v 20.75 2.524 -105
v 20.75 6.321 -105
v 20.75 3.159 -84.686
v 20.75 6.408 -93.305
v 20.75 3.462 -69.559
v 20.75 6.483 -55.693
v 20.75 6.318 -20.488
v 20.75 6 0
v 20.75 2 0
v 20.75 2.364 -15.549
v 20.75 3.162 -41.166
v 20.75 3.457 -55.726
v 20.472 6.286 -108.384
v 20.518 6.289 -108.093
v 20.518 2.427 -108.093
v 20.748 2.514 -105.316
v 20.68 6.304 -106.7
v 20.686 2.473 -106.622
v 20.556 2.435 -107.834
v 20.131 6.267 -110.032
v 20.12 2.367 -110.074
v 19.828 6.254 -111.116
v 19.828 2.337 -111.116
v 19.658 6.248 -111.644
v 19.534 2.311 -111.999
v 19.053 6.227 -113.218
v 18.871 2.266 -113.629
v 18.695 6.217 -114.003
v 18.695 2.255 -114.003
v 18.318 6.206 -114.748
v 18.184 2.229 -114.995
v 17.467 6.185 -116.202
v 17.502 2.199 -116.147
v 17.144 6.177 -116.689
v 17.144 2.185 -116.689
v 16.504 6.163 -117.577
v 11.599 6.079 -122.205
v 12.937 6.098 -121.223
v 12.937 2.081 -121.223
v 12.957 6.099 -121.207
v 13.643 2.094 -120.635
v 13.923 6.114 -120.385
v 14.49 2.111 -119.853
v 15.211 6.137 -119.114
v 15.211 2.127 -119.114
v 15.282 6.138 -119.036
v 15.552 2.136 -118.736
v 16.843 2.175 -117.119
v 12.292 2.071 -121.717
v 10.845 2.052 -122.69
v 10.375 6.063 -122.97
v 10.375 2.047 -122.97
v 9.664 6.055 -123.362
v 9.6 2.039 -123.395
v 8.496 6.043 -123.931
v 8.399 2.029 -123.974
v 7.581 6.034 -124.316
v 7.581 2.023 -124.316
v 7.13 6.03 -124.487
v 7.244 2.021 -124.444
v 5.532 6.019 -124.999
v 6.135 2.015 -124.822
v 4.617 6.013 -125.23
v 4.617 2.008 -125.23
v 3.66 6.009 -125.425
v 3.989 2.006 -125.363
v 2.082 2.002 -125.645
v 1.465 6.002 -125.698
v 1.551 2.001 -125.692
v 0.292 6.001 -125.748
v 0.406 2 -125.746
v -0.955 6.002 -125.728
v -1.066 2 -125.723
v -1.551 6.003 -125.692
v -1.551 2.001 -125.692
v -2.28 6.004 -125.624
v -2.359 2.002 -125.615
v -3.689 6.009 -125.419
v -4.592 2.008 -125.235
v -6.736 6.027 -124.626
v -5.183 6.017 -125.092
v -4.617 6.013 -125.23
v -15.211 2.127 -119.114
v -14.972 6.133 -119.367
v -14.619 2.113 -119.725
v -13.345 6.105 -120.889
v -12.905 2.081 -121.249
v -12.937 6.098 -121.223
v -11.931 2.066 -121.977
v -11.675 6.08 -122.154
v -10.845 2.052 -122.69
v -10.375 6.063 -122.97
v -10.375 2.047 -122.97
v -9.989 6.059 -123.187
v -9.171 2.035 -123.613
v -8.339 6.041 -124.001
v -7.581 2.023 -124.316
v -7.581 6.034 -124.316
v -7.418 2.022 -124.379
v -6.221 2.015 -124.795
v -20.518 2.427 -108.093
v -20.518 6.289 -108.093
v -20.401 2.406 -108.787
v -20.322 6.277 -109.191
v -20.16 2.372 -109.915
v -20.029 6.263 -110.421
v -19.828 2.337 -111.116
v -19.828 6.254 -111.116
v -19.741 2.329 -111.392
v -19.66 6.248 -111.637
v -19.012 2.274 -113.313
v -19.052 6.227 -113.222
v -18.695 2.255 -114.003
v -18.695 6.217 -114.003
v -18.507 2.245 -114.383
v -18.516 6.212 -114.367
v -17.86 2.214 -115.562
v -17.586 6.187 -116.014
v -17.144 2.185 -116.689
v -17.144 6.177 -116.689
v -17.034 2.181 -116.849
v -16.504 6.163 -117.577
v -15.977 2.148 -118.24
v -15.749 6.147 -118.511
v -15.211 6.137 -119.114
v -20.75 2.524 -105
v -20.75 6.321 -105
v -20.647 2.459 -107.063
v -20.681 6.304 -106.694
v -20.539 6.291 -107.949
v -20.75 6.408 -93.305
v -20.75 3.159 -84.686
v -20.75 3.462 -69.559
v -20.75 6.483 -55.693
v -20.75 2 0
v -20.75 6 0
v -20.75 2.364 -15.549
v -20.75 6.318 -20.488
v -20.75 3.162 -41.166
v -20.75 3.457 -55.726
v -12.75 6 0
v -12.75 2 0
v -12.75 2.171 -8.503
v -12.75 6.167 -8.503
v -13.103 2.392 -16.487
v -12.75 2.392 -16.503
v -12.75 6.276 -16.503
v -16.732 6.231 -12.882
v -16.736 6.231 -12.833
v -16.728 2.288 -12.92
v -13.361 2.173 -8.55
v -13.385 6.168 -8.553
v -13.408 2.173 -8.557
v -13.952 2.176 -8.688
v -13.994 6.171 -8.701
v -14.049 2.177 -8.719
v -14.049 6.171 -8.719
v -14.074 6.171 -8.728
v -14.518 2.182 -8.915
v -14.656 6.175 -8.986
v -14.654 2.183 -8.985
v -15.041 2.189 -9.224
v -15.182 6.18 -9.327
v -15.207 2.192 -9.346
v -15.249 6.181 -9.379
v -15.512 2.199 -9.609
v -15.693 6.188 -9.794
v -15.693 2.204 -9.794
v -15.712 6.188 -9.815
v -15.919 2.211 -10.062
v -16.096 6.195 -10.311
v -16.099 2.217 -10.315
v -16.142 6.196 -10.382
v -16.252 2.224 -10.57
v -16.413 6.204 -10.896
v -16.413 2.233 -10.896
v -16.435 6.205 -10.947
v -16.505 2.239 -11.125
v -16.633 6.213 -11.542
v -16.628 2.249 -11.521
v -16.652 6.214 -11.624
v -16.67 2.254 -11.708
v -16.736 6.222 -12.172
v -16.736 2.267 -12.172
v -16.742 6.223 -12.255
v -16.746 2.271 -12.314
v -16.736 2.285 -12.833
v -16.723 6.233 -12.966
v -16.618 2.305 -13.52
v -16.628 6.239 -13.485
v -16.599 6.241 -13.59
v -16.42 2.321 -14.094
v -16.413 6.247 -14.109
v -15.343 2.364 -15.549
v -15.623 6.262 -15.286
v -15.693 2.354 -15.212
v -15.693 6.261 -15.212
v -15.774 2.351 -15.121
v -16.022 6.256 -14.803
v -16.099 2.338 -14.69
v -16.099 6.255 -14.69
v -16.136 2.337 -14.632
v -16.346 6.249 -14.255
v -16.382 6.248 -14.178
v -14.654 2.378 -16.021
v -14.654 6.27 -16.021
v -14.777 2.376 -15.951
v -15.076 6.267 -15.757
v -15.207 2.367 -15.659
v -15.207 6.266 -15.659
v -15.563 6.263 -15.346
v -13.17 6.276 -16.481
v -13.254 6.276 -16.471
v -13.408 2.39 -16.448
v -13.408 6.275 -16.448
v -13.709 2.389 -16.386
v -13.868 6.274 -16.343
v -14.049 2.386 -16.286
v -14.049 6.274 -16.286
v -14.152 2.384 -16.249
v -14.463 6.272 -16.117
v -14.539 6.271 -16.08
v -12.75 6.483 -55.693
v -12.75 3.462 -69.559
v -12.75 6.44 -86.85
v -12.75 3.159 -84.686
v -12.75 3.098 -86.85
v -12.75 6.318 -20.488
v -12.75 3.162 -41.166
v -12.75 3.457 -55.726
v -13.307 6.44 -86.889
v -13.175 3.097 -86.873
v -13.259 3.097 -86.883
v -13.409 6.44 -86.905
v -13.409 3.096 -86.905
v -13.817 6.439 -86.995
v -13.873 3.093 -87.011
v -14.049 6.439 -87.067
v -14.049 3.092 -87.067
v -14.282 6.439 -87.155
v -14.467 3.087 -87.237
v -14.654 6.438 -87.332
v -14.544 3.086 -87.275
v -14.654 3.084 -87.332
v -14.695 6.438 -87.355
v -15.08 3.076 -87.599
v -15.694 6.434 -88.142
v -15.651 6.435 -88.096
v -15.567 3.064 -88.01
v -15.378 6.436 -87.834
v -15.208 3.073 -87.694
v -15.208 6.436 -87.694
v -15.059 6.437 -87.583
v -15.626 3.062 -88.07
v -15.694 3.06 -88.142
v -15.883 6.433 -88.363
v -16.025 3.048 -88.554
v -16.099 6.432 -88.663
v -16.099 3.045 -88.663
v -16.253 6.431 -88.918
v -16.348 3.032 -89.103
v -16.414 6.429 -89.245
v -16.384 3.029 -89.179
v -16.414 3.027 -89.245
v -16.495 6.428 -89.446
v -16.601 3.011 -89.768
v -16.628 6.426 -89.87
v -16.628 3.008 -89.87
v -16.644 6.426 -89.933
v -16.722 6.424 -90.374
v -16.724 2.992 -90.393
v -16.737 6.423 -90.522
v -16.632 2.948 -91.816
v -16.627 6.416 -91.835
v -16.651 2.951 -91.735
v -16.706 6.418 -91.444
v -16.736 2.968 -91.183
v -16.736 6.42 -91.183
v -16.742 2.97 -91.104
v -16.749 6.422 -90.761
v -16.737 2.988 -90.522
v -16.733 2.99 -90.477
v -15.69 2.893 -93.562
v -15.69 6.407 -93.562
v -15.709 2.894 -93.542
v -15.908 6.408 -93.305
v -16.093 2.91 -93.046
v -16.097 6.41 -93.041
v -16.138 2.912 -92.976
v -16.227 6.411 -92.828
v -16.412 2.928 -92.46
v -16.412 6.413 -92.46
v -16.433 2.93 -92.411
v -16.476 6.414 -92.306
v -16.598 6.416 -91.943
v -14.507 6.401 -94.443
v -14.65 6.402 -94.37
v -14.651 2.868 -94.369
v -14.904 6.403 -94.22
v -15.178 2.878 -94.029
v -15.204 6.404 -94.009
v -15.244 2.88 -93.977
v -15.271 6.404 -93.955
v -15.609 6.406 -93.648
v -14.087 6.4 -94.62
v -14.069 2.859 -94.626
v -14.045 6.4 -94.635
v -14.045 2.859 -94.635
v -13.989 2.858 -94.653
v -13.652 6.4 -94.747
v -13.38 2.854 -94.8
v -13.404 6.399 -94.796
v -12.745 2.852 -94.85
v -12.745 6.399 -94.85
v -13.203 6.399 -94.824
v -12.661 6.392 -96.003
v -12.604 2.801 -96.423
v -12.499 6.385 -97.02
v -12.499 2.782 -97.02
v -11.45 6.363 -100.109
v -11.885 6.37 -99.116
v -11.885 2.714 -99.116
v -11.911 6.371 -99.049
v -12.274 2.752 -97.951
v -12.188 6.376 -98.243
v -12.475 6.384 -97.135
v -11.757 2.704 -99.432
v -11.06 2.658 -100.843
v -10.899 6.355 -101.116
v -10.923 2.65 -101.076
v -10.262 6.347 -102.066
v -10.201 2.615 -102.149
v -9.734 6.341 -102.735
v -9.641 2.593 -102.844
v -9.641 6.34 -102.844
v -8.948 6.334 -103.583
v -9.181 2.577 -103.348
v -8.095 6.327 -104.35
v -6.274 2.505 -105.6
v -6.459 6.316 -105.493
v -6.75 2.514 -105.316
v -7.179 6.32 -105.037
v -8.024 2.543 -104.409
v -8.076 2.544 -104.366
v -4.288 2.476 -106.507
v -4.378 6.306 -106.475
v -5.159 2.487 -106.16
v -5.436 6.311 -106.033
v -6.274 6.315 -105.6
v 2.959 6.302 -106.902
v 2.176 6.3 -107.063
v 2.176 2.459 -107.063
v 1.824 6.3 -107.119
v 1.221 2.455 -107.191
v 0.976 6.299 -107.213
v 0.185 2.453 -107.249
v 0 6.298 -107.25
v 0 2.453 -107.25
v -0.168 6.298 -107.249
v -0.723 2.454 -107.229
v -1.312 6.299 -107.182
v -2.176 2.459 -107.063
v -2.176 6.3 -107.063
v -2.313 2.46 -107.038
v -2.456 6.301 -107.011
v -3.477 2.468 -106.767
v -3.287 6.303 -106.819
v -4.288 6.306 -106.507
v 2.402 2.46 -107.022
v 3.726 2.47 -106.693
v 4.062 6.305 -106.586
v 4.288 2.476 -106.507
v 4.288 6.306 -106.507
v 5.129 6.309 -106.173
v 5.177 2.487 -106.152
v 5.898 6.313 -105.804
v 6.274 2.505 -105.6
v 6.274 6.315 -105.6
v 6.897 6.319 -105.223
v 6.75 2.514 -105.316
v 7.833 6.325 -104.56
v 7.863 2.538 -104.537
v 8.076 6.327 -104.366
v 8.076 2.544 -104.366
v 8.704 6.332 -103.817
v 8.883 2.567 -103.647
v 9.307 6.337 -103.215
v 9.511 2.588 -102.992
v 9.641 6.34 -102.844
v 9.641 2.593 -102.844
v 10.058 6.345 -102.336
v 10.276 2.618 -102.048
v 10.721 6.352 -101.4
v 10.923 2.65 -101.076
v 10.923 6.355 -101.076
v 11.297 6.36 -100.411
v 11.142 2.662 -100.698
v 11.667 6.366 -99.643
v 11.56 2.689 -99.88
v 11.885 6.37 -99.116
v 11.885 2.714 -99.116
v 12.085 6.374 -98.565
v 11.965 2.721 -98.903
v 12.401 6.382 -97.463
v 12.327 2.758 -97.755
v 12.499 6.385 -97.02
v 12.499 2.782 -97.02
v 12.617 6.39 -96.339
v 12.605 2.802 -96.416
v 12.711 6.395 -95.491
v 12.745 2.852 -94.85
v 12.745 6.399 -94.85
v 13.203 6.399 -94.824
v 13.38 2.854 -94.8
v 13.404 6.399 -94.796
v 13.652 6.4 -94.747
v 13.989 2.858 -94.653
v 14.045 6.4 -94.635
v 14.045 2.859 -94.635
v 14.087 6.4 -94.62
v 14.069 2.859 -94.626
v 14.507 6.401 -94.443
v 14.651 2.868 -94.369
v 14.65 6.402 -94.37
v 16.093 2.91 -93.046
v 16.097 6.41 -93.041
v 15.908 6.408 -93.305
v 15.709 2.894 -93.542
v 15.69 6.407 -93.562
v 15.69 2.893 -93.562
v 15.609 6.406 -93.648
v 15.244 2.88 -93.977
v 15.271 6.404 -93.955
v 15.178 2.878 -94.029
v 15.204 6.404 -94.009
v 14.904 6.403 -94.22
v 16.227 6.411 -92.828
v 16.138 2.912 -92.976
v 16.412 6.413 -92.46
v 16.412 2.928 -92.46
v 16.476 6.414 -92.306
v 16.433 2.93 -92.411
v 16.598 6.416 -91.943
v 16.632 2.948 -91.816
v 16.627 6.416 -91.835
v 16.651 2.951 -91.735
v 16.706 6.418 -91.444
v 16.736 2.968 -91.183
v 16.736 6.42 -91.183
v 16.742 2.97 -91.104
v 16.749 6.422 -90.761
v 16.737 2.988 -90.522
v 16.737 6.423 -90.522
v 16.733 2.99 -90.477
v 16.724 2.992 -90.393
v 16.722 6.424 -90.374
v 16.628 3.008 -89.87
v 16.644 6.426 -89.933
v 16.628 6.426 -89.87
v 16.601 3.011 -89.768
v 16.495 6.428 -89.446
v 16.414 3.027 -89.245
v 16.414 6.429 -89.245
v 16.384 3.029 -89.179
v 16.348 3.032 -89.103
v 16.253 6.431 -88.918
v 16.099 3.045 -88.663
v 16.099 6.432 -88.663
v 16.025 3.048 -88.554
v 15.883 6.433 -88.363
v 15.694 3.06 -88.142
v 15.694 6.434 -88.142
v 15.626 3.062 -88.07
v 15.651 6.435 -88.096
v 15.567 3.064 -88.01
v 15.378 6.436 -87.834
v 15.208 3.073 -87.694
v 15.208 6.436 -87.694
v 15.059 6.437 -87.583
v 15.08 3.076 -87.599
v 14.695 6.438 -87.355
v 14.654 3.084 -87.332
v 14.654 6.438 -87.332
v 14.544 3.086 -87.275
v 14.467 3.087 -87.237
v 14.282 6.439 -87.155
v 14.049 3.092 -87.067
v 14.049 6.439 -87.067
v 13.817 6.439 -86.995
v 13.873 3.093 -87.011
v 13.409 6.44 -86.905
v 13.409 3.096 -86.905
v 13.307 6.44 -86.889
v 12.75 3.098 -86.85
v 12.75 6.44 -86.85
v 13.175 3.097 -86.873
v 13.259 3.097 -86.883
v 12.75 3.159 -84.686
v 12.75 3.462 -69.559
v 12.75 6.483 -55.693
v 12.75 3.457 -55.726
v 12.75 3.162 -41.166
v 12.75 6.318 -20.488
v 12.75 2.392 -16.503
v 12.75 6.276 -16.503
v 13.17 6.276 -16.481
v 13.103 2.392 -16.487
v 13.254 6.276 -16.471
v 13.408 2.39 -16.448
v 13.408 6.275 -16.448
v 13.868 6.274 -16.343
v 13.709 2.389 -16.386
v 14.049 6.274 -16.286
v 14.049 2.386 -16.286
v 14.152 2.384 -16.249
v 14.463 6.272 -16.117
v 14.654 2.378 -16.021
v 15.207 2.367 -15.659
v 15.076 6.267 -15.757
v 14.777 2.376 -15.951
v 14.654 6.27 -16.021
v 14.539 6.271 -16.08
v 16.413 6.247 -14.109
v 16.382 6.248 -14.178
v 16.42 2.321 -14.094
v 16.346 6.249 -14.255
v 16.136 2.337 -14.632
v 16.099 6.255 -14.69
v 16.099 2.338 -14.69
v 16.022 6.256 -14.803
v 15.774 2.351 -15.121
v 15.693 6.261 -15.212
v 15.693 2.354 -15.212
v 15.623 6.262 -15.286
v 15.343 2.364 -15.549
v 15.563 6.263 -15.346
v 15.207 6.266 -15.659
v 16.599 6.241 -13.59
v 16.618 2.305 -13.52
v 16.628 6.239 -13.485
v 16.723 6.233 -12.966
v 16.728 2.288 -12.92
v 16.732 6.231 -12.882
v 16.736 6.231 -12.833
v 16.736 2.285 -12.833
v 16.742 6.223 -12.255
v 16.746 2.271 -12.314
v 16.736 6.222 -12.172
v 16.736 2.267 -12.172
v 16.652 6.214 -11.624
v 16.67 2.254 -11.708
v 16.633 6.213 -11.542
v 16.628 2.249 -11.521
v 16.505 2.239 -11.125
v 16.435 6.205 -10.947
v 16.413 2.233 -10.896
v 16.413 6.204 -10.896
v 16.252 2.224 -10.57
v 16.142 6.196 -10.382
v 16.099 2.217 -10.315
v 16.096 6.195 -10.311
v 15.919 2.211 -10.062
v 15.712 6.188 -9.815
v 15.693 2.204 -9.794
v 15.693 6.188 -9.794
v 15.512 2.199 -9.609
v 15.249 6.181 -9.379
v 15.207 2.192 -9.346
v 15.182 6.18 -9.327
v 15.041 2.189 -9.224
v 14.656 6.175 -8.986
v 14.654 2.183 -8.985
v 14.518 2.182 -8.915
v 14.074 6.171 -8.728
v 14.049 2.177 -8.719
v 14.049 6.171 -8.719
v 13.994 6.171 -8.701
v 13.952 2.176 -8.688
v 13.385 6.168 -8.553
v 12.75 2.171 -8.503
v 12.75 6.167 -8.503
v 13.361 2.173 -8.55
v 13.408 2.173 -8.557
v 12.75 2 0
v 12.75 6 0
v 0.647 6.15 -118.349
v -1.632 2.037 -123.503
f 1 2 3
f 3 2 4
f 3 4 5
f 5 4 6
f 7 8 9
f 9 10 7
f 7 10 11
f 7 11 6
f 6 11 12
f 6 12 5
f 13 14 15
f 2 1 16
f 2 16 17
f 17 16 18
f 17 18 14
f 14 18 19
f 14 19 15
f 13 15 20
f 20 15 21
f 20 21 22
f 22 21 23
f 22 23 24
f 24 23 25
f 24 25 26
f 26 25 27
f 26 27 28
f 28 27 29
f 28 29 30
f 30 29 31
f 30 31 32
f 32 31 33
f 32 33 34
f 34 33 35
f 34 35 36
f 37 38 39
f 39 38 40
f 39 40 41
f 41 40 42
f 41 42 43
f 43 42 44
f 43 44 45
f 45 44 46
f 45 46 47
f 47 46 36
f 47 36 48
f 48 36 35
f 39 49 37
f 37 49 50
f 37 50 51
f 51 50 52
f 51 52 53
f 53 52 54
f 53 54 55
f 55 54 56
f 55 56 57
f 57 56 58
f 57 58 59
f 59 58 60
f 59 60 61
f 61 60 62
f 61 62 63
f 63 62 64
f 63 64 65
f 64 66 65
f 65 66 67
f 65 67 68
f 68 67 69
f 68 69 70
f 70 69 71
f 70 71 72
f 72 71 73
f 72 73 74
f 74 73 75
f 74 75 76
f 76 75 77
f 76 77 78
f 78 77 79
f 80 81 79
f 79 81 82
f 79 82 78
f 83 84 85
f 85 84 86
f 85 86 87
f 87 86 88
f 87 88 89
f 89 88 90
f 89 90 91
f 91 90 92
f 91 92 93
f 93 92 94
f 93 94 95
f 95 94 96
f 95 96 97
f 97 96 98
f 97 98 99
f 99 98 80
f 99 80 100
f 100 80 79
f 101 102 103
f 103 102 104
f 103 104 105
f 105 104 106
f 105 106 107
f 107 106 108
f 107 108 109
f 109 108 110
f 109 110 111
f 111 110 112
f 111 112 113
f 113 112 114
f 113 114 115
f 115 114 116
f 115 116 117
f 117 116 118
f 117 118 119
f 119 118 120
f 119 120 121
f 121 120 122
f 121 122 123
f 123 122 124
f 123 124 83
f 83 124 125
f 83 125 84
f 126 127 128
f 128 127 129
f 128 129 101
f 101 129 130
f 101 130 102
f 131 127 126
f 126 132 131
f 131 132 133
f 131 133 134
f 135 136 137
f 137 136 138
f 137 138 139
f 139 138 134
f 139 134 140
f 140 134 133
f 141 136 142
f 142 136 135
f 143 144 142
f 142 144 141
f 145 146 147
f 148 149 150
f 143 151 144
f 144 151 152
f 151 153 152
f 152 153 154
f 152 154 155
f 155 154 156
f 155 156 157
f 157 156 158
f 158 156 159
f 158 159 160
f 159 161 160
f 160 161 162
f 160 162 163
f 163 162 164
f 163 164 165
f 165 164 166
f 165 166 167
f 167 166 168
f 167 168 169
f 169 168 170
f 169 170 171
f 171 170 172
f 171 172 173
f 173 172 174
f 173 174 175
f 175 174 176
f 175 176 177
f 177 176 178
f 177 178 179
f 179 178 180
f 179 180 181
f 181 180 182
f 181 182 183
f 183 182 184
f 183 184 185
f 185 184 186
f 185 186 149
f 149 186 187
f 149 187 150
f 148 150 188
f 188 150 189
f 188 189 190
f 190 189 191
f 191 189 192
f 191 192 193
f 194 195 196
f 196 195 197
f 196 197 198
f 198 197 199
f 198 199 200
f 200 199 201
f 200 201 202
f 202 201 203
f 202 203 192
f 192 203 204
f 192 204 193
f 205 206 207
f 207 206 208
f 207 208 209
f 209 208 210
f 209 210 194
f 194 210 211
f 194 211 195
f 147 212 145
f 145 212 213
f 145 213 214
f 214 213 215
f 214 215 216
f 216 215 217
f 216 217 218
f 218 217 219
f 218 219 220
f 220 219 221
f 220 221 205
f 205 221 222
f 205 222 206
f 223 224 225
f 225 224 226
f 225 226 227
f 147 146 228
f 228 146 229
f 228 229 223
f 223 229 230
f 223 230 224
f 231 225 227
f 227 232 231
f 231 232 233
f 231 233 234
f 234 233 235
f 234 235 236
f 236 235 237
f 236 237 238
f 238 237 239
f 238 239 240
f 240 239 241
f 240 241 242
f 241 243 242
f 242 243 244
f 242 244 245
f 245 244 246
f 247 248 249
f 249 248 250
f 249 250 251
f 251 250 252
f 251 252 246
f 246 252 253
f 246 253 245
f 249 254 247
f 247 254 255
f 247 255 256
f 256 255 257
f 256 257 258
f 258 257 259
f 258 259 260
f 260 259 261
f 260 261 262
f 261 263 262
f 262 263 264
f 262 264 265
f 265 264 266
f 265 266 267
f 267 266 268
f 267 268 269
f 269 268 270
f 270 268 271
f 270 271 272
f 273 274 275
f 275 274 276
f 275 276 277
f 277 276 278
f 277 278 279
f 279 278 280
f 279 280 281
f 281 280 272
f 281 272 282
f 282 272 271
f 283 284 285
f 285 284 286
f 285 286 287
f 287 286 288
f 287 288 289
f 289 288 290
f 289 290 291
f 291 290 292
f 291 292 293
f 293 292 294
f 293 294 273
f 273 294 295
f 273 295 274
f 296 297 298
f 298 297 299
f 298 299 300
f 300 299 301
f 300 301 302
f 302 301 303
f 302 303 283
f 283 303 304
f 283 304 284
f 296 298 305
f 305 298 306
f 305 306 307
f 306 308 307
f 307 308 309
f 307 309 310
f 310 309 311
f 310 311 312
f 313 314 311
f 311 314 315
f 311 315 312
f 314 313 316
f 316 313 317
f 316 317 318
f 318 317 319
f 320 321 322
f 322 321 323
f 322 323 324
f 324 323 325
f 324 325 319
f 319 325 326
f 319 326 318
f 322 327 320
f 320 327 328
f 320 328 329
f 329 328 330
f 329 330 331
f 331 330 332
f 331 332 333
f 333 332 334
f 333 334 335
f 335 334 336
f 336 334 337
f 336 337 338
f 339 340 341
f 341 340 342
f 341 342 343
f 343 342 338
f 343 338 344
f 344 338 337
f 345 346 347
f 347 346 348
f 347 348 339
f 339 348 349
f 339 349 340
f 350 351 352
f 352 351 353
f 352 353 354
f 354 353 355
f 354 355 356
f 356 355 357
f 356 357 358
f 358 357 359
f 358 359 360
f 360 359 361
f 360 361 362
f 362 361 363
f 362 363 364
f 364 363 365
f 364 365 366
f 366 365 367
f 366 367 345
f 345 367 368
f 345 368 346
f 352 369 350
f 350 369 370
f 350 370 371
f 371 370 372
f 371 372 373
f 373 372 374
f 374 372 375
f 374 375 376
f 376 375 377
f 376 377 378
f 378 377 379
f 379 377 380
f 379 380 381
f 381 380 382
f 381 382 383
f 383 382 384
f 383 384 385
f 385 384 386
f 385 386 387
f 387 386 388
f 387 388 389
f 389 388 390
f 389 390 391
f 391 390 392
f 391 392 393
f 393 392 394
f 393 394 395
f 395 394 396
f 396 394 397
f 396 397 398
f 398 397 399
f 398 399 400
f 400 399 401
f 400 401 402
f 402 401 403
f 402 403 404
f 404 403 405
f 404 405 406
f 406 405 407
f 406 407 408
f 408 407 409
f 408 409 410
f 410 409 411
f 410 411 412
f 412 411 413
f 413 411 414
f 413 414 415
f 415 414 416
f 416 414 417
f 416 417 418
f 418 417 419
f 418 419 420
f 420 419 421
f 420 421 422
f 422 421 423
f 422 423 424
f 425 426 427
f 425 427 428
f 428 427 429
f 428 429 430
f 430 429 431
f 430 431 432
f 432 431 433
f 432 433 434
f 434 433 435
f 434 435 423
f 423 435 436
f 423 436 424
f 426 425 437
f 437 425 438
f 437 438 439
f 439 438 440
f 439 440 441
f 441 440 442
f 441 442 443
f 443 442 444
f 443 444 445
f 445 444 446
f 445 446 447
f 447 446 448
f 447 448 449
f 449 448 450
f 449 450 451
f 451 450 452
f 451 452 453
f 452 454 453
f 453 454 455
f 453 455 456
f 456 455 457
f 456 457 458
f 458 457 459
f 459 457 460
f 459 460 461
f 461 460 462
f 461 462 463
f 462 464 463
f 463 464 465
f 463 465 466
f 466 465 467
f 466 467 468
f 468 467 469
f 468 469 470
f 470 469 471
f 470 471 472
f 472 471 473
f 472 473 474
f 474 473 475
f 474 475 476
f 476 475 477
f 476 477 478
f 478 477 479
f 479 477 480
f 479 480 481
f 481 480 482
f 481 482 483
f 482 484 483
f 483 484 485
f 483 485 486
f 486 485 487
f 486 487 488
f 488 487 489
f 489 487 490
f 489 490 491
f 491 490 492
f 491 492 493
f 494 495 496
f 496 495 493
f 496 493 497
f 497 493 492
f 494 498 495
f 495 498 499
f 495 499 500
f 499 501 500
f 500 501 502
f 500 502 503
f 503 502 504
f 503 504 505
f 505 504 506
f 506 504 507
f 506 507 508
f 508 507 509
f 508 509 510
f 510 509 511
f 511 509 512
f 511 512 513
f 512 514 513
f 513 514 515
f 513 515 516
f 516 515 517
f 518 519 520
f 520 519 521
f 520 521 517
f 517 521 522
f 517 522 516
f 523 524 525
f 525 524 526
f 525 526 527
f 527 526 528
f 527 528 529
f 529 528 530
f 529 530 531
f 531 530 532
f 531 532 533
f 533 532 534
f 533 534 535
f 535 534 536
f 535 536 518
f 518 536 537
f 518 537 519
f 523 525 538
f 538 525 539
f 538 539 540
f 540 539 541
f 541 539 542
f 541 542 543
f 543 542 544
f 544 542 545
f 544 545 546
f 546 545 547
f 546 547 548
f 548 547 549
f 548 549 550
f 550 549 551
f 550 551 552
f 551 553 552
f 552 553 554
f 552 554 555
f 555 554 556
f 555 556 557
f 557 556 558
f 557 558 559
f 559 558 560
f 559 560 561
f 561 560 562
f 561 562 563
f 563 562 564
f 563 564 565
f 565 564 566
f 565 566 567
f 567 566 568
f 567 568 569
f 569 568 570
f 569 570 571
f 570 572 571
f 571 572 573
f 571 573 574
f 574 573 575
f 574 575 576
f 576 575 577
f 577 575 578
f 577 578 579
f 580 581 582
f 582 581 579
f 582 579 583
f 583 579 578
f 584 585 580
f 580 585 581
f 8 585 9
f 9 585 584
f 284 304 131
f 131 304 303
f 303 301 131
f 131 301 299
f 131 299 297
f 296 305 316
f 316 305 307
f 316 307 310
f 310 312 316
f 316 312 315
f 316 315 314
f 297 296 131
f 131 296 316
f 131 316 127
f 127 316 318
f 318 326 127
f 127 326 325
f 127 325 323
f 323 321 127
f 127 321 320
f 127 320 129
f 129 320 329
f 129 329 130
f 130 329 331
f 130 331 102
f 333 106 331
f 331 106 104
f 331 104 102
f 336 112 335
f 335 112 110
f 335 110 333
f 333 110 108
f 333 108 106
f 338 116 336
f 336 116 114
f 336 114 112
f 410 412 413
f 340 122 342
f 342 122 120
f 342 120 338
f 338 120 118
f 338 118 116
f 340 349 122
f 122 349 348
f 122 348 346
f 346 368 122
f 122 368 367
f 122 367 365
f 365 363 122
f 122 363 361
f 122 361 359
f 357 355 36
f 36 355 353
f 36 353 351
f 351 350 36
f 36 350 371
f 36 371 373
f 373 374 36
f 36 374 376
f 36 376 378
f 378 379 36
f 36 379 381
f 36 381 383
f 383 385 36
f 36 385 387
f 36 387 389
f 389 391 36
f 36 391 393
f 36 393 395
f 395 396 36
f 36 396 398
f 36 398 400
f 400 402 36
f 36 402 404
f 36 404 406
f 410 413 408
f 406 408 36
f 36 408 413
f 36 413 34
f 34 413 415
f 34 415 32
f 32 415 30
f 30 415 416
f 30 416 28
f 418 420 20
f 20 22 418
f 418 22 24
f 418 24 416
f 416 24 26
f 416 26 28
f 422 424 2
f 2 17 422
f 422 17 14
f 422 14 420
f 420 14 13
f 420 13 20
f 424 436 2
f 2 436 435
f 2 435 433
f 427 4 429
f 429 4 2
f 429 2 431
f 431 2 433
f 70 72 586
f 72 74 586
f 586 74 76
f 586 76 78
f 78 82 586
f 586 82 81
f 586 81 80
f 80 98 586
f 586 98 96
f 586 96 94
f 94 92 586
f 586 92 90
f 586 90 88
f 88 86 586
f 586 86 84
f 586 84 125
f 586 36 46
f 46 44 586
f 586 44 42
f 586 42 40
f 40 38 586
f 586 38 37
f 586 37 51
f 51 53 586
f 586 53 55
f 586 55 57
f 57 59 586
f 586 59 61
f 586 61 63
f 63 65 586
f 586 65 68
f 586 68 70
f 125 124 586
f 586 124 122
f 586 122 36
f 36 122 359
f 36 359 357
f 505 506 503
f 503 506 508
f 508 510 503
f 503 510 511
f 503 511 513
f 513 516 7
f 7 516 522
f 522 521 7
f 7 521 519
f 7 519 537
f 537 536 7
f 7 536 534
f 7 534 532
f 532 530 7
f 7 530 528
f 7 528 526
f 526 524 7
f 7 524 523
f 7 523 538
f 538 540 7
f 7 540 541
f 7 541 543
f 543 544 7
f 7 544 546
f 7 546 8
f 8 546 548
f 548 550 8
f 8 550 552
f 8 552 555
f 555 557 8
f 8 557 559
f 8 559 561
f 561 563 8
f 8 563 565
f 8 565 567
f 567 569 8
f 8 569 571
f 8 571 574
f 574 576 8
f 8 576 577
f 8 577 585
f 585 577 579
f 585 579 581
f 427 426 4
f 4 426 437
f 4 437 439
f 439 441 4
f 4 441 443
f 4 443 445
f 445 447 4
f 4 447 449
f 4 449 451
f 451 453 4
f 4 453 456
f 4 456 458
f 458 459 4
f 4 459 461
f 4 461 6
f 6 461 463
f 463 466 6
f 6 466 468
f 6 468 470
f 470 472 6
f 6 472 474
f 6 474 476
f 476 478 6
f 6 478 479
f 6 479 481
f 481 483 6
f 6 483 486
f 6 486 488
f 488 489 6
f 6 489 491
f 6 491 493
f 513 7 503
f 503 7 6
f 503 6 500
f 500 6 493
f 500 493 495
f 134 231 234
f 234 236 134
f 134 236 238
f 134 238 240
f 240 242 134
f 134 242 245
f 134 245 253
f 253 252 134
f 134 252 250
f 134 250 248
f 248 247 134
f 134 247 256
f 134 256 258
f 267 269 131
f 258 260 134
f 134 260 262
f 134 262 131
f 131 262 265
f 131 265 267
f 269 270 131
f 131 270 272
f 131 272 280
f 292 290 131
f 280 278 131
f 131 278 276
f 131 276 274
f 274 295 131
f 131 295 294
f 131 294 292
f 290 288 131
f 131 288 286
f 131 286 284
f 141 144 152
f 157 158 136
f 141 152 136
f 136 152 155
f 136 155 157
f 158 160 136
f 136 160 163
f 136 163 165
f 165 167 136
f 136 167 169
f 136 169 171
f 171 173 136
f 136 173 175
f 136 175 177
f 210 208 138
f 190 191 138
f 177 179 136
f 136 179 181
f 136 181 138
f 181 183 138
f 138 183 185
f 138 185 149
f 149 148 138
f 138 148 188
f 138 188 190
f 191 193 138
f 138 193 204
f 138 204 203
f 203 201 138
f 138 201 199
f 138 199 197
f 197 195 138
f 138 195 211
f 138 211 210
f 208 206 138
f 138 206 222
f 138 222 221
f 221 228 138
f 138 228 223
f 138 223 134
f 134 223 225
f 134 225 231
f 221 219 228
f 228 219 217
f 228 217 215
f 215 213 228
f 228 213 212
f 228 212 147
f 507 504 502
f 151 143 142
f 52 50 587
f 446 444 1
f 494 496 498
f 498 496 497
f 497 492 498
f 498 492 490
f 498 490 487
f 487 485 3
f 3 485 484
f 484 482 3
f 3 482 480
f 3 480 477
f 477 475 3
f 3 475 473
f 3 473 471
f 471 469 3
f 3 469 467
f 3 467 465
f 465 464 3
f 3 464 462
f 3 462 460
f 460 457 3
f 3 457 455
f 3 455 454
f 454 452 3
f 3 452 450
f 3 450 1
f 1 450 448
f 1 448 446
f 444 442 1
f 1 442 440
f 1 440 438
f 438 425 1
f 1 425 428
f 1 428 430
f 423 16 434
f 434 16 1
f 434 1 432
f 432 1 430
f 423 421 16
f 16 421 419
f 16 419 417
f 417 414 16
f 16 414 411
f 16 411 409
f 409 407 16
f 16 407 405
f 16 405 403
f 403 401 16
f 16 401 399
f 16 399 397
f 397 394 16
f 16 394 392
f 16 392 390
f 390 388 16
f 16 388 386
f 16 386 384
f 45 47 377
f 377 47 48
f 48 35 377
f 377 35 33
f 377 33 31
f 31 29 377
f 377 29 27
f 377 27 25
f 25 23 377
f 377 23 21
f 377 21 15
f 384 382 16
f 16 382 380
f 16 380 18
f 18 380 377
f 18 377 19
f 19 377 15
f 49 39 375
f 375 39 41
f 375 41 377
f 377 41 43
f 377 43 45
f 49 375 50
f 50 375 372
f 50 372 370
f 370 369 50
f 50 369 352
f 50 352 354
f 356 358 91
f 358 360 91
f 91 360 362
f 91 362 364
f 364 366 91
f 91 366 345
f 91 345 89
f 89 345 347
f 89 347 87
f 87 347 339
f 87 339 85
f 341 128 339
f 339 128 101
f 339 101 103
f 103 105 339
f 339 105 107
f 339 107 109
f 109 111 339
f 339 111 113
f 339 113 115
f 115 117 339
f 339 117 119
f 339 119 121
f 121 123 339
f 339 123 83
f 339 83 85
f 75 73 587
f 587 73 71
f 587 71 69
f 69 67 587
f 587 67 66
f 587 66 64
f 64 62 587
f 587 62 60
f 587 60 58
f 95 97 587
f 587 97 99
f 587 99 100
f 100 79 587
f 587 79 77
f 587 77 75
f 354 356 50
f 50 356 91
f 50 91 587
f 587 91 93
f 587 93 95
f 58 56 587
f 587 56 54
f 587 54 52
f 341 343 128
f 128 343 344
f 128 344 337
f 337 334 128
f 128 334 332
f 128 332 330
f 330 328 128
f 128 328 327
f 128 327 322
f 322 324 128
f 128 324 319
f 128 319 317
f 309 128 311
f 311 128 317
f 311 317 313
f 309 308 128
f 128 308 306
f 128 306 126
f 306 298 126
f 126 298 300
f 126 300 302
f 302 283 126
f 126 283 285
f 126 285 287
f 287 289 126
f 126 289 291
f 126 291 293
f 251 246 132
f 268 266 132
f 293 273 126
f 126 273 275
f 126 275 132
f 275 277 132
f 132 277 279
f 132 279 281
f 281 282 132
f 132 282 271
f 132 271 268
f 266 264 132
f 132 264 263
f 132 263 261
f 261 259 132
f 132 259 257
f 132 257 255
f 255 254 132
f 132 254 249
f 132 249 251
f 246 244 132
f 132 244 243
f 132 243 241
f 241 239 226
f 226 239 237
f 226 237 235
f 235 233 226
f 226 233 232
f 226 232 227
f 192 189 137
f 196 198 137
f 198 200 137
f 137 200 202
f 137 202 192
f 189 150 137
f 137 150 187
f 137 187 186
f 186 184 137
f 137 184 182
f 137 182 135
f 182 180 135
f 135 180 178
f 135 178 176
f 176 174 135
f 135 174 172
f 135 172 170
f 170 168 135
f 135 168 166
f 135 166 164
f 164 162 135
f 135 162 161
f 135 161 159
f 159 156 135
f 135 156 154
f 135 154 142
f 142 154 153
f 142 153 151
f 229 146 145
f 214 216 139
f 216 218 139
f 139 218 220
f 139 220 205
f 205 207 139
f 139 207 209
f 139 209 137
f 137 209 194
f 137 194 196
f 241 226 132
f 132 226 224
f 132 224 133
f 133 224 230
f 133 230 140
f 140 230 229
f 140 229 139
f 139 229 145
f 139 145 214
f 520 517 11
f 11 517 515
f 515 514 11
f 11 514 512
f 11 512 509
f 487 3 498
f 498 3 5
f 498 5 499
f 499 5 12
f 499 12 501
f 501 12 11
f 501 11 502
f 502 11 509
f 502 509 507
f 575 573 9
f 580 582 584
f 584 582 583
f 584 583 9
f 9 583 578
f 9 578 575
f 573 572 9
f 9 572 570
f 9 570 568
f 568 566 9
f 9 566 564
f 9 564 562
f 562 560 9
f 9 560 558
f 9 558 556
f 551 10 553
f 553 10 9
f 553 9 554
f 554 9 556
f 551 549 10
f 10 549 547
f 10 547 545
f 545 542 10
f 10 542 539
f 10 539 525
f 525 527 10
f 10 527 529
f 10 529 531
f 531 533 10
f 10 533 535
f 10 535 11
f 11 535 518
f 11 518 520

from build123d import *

# Parameters (mm, degrees)
BOSS_EXTRUDE2_DEPTH = 10
CUT_EXTRUDE1_REACH  = 134.798
CUT_EXTRUDE2_REACH  = 134.58


with BuildPart() as part:
    # Sketch1 → Boss-Extrude2 (new body)
    with BuildSketch(Plane(origin=(0, 0, 0), x_dir=(1, 0, 0), z_dir=(0, 1, 0))):
        with BuildLine():
            Line((-20.75, 0), (-12.75, 0))
            Line((-12.75, 0), (-12.75, 8.502685995))
            ThreePointArc((-12.75, 8.502685995), (-16.75, 12.502685995), (-12.75, 16.502685995))
            Line((-12.75, 16.502685995), (-12.75, 86.85))
            ThreePointArc((-12.75, 86.85), (-16.749999279, 90.852402374), (-12.745195252, 94.849997114))
            ThreePointArc((-12.745195252, 94.849997114), (0, 107.25), (12.745195252, 94.849997114))
            ThreePointArc((12.745195252, 94.849997114), (16.749999279, 90.852402374), (12.75, 86.85))
            Line((12.75, 86.85), (12.75, 16.502685995))
            ThreePointArc((12.75, 16.502685995), (16.75, 12.502685995), (12.75, 8.502685995))
            Line((12.75, 8.502685995), (12.75, 0))
            Line((12.75, 0), (20.75, 0))
            Line((20.75, 0), (20.75, 105))
            ThreePointArc((20.75, 105), (0, 125.75), (-20.75, 105))
            Line((-20.75, 105), (-20.75, 0))
        make_face()
    extrude(amount=BOSS_EXTRUDE2_DEPTH)

    # Cut-Extrude1: up to this face of the body (flat: up to its plane)
    cut_extrude1_end = Plane(part.part.faces().sort_by_distance((-20.75, 5, -52.5))[0])
    # Sketch2 → Cut-Extrude1 (cut, up to the picked face)
    with BuildSketch(Plane(origin=(20.75, 0, 0), x_dir=(0, 0, -1), z_dir=(1, 0, 0)), mode=Mode.PRIVATE) as cut_extrude1_sk1:
        with BuildLine():
            Line((0, 10), (0, 6))
            add(Edge.make_bspline(
                [(0, 6), (20.380438902, 6.489130534), (49.317340974, 6.513055303), (79.861692853, 6.559373615), (105, 6.320685747)],
                knots=[0, 0, 0, 0, 0, 0.815217556, 0.815217556, 0.815217556, 0.815217556, 0.815217556], degree=4))
            Line((105, 6.320685747), (105, 10))
            Line((105, 10), (0, 10))
        make_face()
    cut_extrude1_tool1 = split(extrude(cut_extrude1_sk1.sketch, amount=-CUT_EXTRUDE1_REACH, mode=Mode.PRIVATE), bisect_by=cut_extrude1_end, keep=Keep.BOTH, mode=Mode.PRIVATE)
    # Sketch2 → Cut-Extrude1 (cut, up to the picked face)
    with BuildSketch(Plane(origin=(20.75, 0, 0), x_dir=(0, 0, -1), z_dir=(1, 0, 0)), mode=Mode.PRIVATE) as cut_extrude1_sk2:
        with BuildLine():
            Line((105, 10), (105, 6.320685747))
            add(Edge.make_bspline(
                [(105, 6.320685747), (110.698010054, 6.266583223), (116.118270151, 6.197837747), (121.179103999, 6.110869466), (125.798665098, 6)],
                knots=[0.815217556, 0.815217556, 0.815217556, 0.815217556, 0.815217556, 1, 1, 1, 1, 1], degree=4))
            Line((125.798665098, 6), (125.75, 10))
            Line((125.75, 10), (105, 10))
        make_face()
    cut_extrude1_tool2 = split(extrude(cut_extrude1_sk2.sketch, amount=-CUT_EXTRUDE1_REACH, mode=Mode.PRIVATE), bisect_by=cut_extrude1_end, keep=Keep.BOTH, mode=Mode.PRIVATE)
    add(cut_extrude1_tool1.solids().sort_by(Axis((20.75, 8.191223, -51.89052), (-1, 0, 0)))[0], mode=Mode.SUBTRACT)
    add(cut_extrude1_tool2.solids().sort_by(Axis((20.75, 8.09056, -115.529992), (-1, 0, 0)))[0], mode=Mode.SUBTRACT)

    # Cut-Extrude2: up to this face of the body (flat: up to its plane)
    cut_extrude2_end = Plane(part.part.faces().sort_by_distance((-20.75, 3.194161628, -52.844890182))[0])
    # Sketch3 → Cut-Extrude2 (cut, up to the picked face)
    with BuildSketch(Plane(origin=(20.75, 0, 0), x_dir=(0, 0, -1), z_dir=(1, 0, 0)), mode=Mode.PRIVATE) as cut_extrude2_sk1:
        with BuildLine():
            Line((0, 0), (0, 2))
            add(Edge.make_bspline(
                [(0, 2), (20.957324469, 2.318248008), (62.875, 4.681751992), (104.792675531, 2.318248008), (125.75, 2)],
                knots=[0, 0, 0, 0, 0.5, 1, 1, 1, 1], degree=3))
            Line((125.75, 2), (125.75, 0))
            Line((125.75, 0), (0, 0))
        make_face()
    cut_extrude2_tool1 = split(extrude(cut_extrude2_sk1.sketch, amount=-CUT_EXTRUDE2_REACH, mode=Mode.PRIVATE), bisect_by=cut_extrude2_end, keep=Keep.BOTH, mode=Mode.PRIVATE)
    add(cut_extrude2_tool1.solids().sort_by(Axis((20.75, 1.458103, -62.875), (-1, 0, 0)))[0], mode=Mode.SUBTRACT)


solid = part.part
